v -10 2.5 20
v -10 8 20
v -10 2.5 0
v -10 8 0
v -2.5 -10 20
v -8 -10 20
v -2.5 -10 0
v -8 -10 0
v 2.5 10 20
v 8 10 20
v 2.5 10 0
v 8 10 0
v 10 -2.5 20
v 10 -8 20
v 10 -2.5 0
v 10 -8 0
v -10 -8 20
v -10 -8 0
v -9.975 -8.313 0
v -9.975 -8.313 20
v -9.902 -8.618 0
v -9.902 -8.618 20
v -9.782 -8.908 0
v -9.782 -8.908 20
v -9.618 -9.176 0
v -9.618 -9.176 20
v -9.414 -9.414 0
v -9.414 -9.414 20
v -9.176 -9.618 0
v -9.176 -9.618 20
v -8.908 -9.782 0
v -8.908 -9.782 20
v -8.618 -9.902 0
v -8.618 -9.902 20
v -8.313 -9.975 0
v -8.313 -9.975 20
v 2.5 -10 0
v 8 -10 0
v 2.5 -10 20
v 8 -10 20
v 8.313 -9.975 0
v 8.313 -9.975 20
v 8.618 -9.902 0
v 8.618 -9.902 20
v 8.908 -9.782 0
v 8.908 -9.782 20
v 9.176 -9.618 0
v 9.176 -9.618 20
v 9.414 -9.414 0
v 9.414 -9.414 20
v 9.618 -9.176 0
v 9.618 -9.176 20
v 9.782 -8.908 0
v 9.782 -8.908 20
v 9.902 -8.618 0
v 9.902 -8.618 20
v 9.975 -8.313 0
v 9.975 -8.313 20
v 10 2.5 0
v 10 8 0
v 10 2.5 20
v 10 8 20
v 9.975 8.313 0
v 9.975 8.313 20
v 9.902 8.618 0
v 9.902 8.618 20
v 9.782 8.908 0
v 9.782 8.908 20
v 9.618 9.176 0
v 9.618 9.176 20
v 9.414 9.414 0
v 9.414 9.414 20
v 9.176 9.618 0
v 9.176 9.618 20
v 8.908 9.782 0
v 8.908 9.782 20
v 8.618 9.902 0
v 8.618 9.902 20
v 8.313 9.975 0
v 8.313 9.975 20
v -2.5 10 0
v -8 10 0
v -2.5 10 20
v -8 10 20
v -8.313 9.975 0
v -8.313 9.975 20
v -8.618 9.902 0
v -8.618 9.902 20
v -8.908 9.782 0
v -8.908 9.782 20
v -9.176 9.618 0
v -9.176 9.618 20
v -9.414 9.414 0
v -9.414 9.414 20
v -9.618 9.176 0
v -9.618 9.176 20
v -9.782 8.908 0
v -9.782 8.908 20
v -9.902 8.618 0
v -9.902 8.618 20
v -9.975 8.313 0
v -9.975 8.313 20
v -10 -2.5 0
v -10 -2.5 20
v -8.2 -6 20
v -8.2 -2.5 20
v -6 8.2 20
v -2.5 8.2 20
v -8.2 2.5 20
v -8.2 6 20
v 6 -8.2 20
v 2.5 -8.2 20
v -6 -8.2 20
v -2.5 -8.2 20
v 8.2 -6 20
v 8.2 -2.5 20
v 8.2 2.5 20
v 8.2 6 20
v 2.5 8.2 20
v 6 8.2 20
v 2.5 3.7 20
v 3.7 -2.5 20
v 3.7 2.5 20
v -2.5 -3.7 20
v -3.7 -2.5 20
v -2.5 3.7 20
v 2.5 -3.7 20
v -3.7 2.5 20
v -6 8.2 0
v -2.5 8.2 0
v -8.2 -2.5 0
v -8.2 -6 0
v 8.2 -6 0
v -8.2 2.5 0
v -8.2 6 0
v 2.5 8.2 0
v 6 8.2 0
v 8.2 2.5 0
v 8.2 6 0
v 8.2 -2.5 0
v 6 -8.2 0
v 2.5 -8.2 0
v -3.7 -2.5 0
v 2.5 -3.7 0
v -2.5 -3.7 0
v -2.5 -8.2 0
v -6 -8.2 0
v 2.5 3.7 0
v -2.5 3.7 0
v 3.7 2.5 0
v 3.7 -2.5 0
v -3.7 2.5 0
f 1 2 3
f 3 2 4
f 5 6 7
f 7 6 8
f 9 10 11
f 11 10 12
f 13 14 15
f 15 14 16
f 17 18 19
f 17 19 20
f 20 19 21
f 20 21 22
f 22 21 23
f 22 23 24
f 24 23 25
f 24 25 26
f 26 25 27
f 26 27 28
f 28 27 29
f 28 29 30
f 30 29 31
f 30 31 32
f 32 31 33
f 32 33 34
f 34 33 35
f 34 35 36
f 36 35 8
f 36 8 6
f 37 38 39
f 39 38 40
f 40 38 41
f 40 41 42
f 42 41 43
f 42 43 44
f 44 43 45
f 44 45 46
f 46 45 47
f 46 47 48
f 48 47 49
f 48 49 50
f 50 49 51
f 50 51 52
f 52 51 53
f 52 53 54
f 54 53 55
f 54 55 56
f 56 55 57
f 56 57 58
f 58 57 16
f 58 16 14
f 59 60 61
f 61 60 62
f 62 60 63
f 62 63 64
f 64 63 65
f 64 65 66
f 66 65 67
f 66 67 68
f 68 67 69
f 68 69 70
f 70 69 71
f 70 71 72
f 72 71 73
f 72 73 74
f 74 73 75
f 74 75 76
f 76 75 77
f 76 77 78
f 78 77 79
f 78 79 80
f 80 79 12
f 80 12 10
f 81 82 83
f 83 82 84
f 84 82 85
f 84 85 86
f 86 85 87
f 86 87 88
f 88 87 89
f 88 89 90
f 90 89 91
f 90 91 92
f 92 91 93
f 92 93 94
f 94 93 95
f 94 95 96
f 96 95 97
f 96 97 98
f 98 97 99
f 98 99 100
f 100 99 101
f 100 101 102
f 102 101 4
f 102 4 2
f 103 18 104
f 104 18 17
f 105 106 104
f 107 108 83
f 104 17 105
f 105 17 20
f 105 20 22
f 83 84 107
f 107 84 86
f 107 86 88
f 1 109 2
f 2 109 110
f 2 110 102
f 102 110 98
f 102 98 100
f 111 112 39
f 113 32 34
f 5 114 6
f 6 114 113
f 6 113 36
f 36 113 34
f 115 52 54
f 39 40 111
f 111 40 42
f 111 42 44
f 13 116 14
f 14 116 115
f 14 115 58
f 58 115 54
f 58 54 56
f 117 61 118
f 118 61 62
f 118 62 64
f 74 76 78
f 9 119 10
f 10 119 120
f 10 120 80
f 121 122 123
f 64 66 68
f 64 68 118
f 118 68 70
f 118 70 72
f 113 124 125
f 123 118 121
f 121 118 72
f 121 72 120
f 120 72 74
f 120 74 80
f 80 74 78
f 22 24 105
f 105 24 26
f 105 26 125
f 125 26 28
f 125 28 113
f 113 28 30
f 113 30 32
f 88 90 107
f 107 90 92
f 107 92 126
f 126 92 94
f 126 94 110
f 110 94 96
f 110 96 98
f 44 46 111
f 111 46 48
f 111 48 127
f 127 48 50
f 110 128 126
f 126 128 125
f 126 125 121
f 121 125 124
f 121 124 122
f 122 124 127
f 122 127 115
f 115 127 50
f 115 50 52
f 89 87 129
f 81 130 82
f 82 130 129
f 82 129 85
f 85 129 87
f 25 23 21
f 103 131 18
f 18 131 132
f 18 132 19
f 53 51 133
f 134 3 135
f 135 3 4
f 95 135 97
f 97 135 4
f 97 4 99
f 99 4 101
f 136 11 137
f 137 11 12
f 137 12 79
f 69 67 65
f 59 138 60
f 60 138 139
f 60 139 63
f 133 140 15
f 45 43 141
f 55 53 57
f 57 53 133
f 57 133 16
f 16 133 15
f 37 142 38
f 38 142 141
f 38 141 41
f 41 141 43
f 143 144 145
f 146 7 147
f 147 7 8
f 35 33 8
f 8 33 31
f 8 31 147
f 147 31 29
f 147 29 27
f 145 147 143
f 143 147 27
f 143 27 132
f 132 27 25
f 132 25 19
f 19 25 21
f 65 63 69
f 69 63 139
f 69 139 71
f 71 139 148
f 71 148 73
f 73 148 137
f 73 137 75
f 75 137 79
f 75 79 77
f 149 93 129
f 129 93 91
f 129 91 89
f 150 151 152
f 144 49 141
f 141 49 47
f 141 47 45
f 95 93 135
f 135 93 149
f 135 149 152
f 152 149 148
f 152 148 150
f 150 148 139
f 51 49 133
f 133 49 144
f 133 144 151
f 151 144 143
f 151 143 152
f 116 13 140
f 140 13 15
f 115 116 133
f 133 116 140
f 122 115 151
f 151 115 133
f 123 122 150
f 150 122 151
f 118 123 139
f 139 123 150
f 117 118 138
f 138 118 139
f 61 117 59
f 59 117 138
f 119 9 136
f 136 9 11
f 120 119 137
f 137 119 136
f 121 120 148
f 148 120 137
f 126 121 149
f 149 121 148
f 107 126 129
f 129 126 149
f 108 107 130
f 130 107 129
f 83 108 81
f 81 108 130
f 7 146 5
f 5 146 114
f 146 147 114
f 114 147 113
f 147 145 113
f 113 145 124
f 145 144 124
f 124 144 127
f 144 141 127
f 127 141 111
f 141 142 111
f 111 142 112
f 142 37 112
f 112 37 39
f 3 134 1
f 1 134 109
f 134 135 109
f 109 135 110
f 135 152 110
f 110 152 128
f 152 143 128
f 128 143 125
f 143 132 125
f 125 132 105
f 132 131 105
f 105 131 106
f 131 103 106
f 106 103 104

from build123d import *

# Parameters (mm, degrees)
EXTRUSION1_DEPTH        = 20
ENL_V_MAT_EXTRU_1_DEPTH = 300
ENL_V_MAT_EXTRU_3_DEPTH = 300
ENL_V_MAT_EXTRU_4_DEPTH = 21
ENL_V_MAT_EXTRU_7_DEPTH = 21


with BuildPart() as part:
    # Esquisse1 → Extrusion1 (new body)
    with BuildSketch(Plane.XY):
        with BuildLine():
            Line((-10, 8), (-10, -8))
            ThreePointArc((-10, -8), (-9.414213562, -9.414213562), (-8, -10))
            Line((-8, -10), (8, -10))
            ThreePointArc((8, -10), (9.414213562, -9.414213562), (10, -8))
            Line((10, -8), (10, 8))
            ThreePointArc((10, 8), (9.414213562, 9.414213562), (8, 10))
            Line((8, 10), (-8, 10))
            ThreePointArc((-8, 10), (-9.414213562, 9.414213562), (-10, 8))
        make_face()
    extrude(amount=EXTRUSION1_DEPTH)

    # Esquisse3 → Enlèv. mat.-Extru.1 (cut)
    with BuildSketch(Plane.XY.offset(20)):
        Polygon((10, 2.5), (8.2, 2.5), (8.2, 6), (3.7, 2.5), (3.7, -2.5), (8.2, -6), (8.2, -2.5), (10, -2.5), align=None)
    extrude(amount=-ENL_V_MAT_EXTRU_1_DEPTH, mode=Mode.SUBTRACT)

    # Esquisse5 → Enlèv. mat.-Extru.3 (cut)
    with BuildSketch(Plane.XY.offset(20)):
        Polygon((-2.5, 10), (-2.5, 8.2), (-6, 8.2), (-2.5, 3.7), (2.5, 3.7), (6, 8.2), (2.5, 8.2), (2.5, 10), align=None)
    extrude(amount=-ENL_V_MAT_EXTRU_3_DEPTH, mode=Mode.SUBTRACT)

    # Esquisse6 → Enlèv. mat.-Extru.4 (cut, through all)
    with BuildSketch(Plane.XY.offset(20)):
        Polygon((-2.5, -10), (-2.5, -8.2), (-6, -8.2), (-2.5, -3.7), (2.5, -3.7), (6, -8.2), (2.5, -8.2), (2.5, -10), align=None)
    extrude(amount=-ENL_V_MAT_EXTRU_4_DEPTH, mode=Mode.SUBTRACT)

    # Esquisse4 → Enlèv. mat.-Extru.7 (cut, through all)
    with BuildSketch(Plane.XY.offset(20)):
        Polygon((-10, 2.5), (-8.2, 2.5), (-8.2, 6), (-3.7, 2.5), (-3.7, -2.5), (-8.2, -6), (-8.2, -2.5), (-10, -2.5), align=None)
    extrude(amount=-ENL_V_MAT_EXTRU_7_DEPTH, mode=Mode.SUBTRACT)


solid = part.part
